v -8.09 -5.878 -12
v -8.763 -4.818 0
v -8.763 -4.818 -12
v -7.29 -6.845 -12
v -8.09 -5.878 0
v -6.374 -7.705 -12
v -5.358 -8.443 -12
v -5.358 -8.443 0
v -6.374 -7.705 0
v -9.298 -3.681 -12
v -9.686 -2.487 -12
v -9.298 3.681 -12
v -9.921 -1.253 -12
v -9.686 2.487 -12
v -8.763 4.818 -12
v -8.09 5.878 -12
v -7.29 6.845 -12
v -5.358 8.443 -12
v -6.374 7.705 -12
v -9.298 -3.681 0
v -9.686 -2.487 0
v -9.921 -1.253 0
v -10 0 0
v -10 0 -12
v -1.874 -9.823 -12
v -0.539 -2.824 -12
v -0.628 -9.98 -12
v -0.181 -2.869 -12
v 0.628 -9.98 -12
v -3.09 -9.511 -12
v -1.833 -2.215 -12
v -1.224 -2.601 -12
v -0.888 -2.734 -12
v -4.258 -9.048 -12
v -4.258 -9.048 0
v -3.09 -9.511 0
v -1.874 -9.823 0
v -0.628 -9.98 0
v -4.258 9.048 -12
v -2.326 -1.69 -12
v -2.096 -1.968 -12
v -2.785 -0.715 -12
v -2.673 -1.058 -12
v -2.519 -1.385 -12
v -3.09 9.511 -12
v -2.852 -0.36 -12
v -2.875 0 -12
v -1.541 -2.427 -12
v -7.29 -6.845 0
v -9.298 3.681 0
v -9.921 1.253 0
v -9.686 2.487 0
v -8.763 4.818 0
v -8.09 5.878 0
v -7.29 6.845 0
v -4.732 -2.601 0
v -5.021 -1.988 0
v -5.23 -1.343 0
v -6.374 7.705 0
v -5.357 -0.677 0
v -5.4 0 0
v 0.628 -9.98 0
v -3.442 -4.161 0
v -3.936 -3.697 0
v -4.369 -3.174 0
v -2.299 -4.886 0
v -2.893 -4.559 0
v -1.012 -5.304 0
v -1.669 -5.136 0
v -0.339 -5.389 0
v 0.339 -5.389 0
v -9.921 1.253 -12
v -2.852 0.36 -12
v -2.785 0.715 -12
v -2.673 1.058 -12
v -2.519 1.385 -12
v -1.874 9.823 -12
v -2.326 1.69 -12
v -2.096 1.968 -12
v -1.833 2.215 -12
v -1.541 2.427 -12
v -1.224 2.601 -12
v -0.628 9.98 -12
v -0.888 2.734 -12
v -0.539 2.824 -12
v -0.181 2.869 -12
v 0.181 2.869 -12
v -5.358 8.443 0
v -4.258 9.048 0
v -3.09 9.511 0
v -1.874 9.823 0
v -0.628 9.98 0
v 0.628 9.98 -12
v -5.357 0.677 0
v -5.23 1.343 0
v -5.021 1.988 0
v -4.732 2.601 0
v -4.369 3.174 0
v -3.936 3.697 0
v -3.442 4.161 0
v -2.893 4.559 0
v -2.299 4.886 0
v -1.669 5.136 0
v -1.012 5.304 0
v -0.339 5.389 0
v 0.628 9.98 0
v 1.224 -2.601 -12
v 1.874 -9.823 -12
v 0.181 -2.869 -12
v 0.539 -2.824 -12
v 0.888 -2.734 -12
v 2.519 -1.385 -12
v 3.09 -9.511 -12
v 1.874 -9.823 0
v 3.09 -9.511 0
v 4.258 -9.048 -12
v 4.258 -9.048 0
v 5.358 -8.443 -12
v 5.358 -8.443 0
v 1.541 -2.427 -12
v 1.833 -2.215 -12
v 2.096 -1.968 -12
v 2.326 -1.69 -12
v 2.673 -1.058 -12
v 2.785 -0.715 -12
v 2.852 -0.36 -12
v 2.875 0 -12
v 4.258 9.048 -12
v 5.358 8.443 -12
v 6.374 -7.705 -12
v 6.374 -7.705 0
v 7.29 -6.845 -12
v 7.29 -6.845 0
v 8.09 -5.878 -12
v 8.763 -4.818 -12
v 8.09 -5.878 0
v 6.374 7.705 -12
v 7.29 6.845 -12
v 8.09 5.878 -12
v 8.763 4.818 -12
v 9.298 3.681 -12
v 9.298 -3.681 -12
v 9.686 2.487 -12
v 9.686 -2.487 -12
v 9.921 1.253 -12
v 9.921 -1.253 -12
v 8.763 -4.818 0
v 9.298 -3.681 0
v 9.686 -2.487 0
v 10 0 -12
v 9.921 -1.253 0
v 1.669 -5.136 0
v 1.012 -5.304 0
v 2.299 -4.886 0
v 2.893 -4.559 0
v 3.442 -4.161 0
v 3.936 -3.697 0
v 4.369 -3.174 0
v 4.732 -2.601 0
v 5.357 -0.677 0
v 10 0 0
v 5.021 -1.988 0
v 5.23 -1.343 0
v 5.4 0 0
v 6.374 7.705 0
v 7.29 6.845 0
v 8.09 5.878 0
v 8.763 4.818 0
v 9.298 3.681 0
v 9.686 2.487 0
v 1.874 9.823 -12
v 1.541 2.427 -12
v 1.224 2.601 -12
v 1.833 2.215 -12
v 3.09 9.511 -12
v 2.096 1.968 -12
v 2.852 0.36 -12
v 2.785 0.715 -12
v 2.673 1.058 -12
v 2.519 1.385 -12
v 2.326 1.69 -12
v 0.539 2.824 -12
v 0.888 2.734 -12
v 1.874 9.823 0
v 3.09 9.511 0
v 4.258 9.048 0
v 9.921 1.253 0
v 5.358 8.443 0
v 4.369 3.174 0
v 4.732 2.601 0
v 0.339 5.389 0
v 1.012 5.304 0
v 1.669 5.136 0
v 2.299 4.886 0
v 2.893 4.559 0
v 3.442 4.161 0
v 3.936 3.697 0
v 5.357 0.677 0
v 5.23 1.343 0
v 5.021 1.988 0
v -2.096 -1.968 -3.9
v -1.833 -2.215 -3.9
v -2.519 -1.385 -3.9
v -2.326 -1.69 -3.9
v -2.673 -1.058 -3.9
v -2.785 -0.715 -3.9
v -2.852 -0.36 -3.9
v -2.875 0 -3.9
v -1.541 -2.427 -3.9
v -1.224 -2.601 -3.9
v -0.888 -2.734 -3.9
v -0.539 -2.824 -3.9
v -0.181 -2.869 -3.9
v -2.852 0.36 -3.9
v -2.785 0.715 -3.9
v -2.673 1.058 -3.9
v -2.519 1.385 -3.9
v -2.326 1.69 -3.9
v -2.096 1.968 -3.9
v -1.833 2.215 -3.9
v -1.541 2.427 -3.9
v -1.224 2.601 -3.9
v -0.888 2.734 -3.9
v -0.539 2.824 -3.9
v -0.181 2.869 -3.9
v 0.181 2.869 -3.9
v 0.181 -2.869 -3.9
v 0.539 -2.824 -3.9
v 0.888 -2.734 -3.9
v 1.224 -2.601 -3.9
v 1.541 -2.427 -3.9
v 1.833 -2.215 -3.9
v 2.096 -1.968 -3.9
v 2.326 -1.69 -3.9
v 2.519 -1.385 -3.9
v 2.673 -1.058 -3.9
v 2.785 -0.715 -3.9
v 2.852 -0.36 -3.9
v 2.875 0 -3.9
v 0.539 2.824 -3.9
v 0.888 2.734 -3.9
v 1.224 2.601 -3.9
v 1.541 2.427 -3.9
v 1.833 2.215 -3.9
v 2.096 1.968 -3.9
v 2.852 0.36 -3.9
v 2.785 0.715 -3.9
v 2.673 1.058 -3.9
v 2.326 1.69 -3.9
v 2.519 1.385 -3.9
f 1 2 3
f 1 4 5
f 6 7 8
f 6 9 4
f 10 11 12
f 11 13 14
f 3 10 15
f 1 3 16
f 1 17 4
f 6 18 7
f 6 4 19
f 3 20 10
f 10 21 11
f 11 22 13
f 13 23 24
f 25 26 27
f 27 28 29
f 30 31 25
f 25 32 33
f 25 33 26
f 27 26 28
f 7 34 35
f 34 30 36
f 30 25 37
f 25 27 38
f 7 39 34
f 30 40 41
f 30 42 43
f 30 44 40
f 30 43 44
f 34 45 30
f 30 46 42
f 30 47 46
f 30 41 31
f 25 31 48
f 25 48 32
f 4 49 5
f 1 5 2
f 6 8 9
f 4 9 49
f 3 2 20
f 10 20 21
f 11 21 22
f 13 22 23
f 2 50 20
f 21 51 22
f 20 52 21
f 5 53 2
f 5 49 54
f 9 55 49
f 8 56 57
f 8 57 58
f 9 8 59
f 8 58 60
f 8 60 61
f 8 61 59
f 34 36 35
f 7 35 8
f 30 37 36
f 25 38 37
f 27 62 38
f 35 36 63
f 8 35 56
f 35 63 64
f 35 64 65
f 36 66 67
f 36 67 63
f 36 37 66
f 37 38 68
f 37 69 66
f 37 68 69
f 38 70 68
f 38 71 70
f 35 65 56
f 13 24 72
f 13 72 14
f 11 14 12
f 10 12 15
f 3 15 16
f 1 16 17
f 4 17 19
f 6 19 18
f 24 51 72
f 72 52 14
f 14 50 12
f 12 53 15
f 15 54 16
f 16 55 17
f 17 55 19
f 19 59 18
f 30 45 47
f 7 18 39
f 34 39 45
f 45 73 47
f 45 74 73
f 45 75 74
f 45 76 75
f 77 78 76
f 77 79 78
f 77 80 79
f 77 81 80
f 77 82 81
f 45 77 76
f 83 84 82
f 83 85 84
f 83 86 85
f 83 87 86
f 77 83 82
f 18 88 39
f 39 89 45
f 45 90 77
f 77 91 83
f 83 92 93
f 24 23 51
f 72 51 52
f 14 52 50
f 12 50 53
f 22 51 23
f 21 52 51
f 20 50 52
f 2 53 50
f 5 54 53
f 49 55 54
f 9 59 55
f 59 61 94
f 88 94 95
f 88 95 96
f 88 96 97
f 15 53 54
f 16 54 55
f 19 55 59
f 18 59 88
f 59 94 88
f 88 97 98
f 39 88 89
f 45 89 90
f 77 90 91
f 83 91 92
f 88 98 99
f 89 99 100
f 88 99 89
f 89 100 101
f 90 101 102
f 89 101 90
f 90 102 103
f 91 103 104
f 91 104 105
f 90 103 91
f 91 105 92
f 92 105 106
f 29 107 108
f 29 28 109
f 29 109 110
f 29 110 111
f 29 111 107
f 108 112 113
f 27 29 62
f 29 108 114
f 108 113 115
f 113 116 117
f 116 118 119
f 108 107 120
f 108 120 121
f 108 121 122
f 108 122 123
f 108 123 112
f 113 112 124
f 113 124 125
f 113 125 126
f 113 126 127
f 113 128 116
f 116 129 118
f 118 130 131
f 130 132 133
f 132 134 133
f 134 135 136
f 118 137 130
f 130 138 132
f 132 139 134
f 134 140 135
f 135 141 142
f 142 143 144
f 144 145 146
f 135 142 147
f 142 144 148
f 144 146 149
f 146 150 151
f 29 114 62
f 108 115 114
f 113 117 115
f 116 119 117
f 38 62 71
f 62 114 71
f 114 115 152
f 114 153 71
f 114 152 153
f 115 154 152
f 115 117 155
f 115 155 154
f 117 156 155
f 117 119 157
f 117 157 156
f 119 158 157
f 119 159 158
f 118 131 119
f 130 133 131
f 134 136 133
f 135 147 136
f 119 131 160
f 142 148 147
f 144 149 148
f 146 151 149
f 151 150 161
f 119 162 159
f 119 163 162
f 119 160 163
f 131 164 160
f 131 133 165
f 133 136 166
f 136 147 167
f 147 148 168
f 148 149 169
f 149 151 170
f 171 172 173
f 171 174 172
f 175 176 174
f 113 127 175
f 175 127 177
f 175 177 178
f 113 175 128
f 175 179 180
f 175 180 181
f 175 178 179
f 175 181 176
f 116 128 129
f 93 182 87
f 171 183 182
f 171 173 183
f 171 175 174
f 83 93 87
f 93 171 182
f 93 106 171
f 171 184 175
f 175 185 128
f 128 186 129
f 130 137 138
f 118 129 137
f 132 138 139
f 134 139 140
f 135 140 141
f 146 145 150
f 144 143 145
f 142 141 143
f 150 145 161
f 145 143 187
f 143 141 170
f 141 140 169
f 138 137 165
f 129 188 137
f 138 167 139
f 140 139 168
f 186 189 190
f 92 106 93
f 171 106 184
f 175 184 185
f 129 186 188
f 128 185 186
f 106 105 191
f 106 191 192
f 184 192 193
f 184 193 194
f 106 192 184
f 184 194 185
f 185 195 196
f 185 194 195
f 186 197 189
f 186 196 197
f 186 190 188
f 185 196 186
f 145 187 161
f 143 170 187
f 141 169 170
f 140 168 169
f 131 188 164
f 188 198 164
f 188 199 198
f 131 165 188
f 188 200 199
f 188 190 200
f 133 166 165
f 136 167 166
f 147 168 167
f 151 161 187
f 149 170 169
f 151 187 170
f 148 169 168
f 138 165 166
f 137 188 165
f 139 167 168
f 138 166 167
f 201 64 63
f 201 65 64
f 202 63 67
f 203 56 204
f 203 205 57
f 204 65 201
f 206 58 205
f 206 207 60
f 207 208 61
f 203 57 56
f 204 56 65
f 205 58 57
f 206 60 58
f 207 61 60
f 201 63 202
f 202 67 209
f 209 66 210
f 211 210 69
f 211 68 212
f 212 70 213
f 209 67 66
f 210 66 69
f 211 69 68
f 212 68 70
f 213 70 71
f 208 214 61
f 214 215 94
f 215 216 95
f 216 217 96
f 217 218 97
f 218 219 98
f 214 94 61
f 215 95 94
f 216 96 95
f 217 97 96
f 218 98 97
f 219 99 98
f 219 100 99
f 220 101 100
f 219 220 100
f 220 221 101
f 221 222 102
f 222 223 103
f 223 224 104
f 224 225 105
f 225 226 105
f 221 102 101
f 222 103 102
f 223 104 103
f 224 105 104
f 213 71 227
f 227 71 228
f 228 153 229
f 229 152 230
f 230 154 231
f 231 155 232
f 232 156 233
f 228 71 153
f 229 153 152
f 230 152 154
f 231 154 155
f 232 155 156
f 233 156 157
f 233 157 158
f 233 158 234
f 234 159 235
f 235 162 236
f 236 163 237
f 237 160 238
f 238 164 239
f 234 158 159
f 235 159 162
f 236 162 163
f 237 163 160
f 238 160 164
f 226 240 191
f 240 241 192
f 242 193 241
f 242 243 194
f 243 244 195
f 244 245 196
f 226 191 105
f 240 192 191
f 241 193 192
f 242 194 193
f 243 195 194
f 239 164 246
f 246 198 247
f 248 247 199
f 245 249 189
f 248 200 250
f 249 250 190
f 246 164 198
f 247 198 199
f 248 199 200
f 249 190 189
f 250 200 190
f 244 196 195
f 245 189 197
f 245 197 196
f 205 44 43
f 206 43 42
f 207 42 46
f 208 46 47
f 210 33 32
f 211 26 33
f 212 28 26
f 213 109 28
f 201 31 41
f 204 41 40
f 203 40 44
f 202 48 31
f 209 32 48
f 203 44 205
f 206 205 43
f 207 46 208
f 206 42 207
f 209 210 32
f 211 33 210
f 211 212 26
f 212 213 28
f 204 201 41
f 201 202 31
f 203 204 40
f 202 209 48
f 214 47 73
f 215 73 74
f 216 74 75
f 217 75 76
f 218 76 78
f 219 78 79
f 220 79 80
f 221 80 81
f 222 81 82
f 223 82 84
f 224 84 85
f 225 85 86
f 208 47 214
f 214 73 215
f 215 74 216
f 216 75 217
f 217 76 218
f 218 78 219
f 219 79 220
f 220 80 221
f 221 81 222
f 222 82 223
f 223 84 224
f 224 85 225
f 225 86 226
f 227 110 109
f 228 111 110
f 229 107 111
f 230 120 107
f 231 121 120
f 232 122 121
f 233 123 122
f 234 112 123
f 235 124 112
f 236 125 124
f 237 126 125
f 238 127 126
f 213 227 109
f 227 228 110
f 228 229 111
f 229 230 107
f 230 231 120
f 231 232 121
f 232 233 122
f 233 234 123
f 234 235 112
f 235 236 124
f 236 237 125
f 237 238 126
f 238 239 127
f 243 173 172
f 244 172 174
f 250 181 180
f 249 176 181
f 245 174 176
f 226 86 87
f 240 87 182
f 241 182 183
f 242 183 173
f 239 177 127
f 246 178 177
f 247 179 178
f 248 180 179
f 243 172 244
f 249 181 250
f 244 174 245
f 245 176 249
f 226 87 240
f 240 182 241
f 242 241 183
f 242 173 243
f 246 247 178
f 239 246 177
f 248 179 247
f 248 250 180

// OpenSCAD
$fn = 50;

difference() {
	union() {
		translate(v = [0, 0, -12.0]) {
			cylinder(h = 12, r = 10.0);
		}
	}
	union() {
		translate(v = [0, 0, 0]) {
			rotate(a = [0, 0, 0]) {
				difference() {
					union() {
						translate(v = [0, 0, -15.0]) {
							cylinder(h = 15, r = 2.6);
						}
						translate(v = [0, 0, -3.9]) {
							cylinder(h = 3.9, r1 = 2.875, r2 = 5.4);
						}
						translate(v = [0, 0, -15.0]) {
							cylinder(h = 15, r = 2.875);
						}
						translate(v = [0, 0, -15.0]) {
							cylinder(h = 15, r = 2.6);
						}
					}
					union();
				}
			}
		}
	}
}
